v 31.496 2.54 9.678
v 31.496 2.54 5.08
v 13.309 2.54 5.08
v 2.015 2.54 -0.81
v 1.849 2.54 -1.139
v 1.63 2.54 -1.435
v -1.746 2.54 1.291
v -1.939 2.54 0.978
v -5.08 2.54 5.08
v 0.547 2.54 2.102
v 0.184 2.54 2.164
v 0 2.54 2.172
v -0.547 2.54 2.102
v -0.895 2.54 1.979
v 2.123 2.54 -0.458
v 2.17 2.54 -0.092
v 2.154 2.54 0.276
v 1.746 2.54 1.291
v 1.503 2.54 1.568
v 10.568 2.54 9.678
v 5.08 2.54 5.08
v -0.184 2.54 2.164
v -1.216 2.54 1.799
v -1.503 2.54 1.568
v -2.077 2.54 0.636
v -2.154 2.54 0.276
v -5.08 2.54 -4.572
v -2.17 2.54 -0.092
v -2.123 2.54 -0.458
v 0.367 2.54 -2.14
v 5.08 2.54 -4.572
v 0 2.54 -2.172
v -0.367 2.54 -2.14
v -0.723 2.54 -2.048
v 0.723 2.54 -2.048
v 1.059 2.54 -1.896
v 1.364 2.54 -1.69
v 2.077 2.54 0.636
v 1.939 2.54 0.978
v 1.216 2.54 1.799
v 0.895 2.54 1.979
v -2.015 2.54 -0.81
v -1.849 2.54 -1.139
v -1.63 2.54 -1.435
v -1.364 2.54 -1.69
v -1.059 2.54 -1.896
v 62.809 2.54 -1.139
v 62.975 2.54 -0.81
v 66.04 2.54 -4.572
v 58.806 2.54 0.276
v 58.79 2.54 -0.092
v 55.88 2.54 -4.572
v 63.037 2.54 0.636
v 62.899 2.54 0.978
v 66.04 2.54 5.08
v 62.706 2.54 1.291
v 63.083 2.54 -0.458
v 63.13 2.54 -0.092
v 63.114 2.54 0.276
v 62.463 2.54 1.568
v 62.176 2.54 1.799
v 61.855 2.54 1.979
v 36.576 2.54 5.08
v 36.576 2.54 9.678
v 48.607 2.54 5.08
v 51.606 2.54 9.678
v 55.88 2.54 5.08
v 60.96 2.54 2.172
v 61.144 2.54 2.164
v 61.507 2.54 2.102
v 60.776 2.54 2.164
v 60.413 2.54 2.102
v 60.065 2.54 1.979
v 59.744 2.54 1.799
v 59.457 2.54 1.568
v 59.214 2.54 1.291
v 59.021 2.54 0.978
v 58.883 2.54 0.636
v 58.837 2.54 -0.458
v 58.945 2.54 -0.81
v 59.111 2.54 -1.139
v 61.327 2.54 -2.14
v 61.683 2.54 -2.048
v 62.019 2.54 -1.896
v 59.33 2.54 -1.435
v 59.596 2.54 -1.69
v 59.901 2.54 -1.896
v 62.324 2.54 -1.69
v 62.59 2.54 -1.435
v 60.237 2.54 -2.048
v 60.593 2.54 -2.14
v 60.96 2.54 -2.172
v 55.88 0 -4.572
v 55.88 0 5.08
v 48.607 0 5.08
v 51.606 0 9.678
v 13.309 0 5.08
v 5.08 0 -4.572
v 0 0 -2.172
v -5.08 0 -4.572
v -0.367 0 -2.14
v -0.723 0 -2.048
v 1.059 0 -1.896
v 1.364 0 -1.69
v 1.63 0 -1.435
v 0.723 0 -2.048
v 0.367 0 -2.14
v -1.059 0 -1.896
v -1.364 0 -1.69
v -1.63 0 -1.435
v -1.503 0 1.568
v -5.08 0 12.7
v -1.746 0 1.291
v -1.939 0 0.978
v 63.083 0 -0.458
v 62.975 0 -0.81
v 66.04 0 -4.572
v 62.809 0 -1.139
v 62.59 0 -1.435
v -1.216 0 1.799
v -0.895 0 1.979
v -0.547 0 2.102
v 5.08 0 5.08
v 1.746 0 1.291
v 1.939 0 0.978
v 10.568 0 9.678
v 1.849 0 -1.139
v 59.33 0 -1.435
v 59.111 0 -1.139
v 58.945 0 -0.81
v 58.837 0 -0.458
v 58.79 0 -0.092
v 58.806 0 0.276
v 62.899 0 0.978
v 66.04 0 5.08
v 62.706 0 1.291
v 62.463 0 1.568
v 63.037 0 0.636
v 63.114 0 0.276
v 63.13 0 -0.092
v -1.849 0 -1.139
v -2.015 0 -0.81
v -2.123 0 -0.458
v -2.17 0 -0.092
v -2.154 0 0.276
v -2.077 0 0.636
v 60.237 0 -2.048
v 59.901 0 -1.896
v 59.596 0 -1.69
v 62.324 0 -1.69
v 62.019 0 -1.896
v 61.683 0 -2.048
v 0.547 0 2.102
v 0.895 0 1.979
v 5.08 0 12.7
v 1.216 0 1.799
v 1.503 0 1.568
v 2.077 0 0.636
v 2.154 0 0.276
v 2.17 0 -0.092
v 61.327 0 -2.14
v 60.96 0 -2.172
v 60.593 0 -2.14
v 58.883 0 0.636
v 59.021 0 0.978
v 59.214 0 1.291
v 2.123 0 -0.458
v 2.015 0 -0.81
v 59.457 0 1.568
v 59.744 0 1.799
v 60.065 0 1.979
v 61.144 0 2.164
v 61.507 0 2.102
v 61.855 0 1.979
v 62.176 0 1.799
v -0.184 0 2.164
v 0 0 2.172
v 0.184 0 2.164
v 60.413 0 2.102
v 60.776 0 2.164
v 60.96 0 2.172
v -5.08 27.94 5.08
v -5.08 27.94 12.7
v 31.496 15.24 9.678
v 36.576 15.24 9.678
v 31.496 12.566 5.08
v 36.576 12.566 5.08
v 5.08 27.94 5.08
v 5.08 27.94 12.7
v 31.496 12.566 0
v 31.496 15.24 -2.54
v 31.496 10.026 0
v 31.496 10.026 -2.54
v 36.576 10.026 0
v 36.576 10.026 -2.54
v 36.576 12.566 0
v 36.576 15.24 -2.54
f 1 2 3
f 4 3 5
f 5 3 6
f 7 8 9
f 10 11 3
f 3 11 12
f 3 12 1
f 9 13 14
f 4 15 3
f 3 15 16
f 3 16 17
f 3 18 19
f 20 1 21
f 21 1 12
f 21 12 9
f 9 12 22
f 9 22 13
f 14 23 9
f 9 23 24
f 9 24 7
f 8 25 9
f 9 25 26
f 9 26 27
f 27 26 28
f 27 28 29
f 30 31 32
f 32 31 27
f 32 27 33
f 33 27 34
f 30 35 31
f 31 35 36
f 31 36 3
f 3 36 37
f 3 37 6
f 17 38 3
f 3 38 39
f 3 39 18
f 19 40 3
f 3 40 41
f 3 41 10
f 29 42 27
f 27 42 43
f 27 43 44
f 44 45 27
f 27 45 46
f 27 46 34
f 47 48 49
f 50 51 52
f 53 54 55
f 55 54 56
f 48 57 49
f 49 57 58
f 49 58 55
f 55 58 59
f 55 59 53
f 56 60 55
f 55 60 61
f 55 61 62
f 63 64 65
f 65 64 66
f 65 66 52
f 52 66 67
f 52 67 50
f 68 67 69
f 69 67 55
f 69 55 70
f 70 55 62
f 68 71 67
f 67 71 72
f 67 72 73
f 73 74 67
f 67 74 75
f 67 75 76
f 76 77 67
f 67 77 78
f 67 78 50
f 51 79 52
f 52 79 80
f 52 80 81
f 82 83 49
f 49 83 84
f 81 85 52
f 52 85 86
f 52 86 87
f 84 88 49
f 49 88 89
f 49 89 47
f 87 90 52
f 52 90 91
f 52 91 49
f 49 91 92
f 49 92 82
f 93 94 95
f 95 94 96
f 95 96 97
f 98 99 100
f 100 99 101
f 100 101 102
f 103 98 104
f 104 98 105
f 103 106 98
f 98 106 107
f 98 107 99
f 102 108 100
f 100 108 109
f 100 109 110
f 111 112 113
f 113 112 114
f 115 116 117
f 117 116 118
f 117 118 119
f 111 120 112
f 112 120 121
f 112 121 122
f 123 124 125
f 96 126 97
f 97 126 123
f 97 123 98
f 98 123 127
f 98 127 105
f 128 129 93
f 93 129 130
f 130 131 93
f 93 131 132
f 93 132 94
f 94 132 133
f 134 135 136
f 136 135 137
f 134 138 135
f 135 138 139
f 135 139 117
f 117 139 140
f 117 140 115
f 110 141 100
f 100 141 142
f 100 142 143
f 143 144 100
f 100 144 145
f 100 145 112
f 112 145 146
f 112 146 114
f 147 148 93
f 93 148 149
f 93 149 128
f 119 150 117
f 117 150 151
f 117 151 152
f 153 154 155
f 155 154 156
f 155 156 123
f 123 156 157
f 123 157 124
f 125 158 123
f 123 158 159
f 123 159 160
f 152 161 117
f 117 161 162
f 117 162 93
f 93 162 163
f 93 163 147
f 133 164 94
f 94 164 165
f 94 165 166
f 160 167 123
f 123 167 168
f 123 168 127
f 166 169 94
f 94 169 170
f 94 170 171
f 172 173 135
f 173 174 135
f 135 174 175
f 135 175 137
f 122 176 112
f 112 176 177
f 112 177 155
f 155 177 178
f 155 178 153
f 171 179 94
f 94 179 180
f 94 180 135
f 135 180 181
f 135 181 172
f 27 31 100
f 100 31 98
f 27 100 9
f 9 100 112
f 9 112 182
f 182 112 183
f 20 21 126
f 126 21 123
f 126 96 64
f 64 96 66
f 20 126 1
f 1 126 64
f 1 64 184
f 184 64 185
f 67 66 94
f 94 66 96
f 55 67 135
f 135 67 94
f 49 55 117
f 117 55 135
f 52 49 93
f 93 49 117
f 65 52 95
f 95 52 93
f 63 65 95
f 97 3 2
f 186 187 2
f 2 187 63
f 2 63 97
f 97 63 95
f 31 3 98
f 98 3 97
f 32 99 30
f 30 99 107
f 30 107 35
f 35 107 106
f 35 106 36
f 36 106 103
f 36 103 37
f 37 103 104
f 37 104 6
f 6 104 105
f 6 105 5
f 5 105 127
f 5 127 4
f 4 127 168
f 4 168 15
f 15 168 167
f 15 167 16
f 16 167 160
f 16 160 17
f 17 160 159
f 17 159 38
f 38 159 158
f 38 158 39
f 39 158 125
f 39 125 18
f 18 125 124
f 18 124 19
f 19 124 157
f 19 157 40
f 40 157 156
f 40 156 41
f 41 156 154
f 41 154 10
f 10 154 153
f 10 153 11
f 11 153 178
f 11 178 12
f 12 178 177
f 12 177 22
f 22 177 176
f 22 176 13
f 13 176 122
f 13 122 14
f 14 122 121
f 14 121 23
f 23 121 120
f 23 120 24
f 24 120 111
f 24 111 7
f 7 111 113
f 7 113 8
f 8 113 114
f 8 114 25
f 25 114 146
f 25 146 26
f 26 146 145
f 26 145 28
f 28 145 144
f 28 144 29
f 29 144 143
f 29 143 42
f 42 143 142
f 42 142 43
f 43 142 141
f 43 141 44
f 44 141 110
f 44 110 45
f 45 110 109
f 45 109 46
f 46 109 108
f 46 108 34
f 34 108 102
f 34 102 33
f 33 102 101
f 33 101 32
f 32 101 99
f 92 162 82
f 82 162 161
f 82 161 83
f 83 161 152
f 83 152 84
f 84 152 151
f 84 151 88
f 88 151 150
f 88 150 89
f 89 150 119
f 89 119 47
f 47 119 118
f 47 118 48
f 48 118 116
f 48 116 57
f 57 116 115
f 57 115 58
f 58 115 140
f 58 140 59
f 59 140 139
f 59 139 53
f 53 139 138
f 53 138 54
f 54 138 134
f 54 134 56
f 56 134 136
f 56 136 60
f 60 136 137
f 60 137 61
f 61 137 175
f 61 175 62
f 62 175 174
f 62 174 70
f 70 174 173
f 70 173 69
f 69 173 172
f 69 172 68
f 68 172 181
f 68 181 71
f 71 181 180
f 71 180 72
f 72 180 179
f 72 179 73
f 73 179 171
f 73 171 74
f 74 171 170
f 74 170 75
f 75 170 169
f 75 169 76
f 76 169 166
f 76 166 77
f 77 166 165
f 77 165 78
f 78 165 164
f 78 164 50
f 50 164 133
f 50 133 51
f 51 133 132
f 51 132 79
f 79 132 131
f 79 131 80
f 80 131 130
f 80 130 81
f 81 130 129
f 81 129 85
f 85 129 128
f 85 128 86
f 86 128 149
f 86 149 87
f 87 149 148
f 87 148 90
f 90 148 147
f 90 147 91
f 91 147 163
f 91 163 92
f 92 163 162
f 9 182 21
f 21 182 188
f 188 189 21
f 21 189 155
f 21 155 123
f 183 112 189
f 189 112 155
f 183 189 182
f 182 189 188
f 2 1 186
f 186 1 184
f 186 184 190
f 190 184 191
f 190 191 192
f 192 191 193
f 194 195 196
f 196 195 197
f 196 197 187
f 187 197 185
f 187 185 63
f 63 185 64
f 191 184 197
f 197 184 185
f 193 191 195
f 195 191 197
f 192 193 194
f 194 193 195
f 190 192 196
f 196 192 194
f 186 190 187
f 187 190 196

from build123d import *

# Parameters (mm, degrees)
SKETCH1_R                = 2.1717
BOSS_EXTRUDE1_DEPTH      = 2.54
BOSS_EXTRUDE2_DEPTH      = 25.4
BOSS_EXTRUDE2_DEPTH_BACK = 2.54
SKETCH2_W                = 10.16
SKETCH2_H                = 7.62
SKETCH3_W                = 5.08
SKETCH3_H                = 4.597654895
BOSS_EXTRUDE3_DEPTH      = 12.7
BOSS_EXTRUDE4_DEPTH      = 5.08


with BuildPart() as part:
    # Sketch1 → Boss-Extrude1 (new body)
    with BuildSketch(Plane(origin=(0, 0, 0), x_dir=(1, 0, 0), z_dir=(0, 1, 0))):
        Polygon((0, -5.08), (-5.08, -5.08), (-5.08, 4.572), (5.08, 4.572), (13.309339364, -5.08), (48.607458274, -5.08), (55.88, 4.572), (66.04, 4.572), (66.04, -5.08), (60.96, -5.08), (55.88, -5.08), (51.60608488, -9.677654895), (10.567737895, -9.677654895), (5.08, -5.08), align=None)
        with Locations(Location((0, 0, 0), (0, 0, 270))):
            Circle(SKETCH1_R, mode=Mode.SUBTRACT)
        with Locations(Location((60.96, 0, 0), (0, 0, 270))):
            Circle(SKETCH1_R, mode=Mode.SUBTRACT)
    extrude(amount=BOSS_EXTRUDE1_DEPTH)

    # Sketch2 → Boss-Extrude2 (add, two sides: drawn at the far end of the back side and taken through both)
    with BuildSketch(Plane(origin=(0, 2.54, 0), x_dir=(1, 0, 0), z_dir=(0, 1, 0)).offset(-BOSS_EXTRUDE2_DEPTH_BACK)):
        with Locations((0, -8.89)):
            Rectangle(SKETCH2_W, SKETCH2_H)
    extrude(amount=BOSS_EXTRUDE2_DEPTH + BOSS_EXTRUDE2_DEPTH_BACK)

    # Sketch3 → Boss-Extrude3 (add)
    with BuildSketch(Plane(origin=(0, 2.54, 0), x_dir=(1, 0, 0), z_dir=(0, 1, 0))):
        with Locations((34.036, -7.378827447)):
            Rectangle(SKETCH3_W, SKETCH3_H)
    extrude(amount=BOSS_EXTRUDE3_DEPTH)

    # Sketch4 → Boss-Extrude4 (add)
    with BuildSketch(Plane(origin=(36.576, 0, 0), x_dir=(0, 0, -1), z_dir=(1, 0, 0))):
        Polygon((-5.08, 15.24), (2.54, 15.24), (2.54, 10.026233787), (0, 10.026233787), (0, 12.566233787), (-5.08, 12.566233787), align=None)
    extrude(amount=-BOSS_EXTRUDE4_DEPTH)


solid = part.part
